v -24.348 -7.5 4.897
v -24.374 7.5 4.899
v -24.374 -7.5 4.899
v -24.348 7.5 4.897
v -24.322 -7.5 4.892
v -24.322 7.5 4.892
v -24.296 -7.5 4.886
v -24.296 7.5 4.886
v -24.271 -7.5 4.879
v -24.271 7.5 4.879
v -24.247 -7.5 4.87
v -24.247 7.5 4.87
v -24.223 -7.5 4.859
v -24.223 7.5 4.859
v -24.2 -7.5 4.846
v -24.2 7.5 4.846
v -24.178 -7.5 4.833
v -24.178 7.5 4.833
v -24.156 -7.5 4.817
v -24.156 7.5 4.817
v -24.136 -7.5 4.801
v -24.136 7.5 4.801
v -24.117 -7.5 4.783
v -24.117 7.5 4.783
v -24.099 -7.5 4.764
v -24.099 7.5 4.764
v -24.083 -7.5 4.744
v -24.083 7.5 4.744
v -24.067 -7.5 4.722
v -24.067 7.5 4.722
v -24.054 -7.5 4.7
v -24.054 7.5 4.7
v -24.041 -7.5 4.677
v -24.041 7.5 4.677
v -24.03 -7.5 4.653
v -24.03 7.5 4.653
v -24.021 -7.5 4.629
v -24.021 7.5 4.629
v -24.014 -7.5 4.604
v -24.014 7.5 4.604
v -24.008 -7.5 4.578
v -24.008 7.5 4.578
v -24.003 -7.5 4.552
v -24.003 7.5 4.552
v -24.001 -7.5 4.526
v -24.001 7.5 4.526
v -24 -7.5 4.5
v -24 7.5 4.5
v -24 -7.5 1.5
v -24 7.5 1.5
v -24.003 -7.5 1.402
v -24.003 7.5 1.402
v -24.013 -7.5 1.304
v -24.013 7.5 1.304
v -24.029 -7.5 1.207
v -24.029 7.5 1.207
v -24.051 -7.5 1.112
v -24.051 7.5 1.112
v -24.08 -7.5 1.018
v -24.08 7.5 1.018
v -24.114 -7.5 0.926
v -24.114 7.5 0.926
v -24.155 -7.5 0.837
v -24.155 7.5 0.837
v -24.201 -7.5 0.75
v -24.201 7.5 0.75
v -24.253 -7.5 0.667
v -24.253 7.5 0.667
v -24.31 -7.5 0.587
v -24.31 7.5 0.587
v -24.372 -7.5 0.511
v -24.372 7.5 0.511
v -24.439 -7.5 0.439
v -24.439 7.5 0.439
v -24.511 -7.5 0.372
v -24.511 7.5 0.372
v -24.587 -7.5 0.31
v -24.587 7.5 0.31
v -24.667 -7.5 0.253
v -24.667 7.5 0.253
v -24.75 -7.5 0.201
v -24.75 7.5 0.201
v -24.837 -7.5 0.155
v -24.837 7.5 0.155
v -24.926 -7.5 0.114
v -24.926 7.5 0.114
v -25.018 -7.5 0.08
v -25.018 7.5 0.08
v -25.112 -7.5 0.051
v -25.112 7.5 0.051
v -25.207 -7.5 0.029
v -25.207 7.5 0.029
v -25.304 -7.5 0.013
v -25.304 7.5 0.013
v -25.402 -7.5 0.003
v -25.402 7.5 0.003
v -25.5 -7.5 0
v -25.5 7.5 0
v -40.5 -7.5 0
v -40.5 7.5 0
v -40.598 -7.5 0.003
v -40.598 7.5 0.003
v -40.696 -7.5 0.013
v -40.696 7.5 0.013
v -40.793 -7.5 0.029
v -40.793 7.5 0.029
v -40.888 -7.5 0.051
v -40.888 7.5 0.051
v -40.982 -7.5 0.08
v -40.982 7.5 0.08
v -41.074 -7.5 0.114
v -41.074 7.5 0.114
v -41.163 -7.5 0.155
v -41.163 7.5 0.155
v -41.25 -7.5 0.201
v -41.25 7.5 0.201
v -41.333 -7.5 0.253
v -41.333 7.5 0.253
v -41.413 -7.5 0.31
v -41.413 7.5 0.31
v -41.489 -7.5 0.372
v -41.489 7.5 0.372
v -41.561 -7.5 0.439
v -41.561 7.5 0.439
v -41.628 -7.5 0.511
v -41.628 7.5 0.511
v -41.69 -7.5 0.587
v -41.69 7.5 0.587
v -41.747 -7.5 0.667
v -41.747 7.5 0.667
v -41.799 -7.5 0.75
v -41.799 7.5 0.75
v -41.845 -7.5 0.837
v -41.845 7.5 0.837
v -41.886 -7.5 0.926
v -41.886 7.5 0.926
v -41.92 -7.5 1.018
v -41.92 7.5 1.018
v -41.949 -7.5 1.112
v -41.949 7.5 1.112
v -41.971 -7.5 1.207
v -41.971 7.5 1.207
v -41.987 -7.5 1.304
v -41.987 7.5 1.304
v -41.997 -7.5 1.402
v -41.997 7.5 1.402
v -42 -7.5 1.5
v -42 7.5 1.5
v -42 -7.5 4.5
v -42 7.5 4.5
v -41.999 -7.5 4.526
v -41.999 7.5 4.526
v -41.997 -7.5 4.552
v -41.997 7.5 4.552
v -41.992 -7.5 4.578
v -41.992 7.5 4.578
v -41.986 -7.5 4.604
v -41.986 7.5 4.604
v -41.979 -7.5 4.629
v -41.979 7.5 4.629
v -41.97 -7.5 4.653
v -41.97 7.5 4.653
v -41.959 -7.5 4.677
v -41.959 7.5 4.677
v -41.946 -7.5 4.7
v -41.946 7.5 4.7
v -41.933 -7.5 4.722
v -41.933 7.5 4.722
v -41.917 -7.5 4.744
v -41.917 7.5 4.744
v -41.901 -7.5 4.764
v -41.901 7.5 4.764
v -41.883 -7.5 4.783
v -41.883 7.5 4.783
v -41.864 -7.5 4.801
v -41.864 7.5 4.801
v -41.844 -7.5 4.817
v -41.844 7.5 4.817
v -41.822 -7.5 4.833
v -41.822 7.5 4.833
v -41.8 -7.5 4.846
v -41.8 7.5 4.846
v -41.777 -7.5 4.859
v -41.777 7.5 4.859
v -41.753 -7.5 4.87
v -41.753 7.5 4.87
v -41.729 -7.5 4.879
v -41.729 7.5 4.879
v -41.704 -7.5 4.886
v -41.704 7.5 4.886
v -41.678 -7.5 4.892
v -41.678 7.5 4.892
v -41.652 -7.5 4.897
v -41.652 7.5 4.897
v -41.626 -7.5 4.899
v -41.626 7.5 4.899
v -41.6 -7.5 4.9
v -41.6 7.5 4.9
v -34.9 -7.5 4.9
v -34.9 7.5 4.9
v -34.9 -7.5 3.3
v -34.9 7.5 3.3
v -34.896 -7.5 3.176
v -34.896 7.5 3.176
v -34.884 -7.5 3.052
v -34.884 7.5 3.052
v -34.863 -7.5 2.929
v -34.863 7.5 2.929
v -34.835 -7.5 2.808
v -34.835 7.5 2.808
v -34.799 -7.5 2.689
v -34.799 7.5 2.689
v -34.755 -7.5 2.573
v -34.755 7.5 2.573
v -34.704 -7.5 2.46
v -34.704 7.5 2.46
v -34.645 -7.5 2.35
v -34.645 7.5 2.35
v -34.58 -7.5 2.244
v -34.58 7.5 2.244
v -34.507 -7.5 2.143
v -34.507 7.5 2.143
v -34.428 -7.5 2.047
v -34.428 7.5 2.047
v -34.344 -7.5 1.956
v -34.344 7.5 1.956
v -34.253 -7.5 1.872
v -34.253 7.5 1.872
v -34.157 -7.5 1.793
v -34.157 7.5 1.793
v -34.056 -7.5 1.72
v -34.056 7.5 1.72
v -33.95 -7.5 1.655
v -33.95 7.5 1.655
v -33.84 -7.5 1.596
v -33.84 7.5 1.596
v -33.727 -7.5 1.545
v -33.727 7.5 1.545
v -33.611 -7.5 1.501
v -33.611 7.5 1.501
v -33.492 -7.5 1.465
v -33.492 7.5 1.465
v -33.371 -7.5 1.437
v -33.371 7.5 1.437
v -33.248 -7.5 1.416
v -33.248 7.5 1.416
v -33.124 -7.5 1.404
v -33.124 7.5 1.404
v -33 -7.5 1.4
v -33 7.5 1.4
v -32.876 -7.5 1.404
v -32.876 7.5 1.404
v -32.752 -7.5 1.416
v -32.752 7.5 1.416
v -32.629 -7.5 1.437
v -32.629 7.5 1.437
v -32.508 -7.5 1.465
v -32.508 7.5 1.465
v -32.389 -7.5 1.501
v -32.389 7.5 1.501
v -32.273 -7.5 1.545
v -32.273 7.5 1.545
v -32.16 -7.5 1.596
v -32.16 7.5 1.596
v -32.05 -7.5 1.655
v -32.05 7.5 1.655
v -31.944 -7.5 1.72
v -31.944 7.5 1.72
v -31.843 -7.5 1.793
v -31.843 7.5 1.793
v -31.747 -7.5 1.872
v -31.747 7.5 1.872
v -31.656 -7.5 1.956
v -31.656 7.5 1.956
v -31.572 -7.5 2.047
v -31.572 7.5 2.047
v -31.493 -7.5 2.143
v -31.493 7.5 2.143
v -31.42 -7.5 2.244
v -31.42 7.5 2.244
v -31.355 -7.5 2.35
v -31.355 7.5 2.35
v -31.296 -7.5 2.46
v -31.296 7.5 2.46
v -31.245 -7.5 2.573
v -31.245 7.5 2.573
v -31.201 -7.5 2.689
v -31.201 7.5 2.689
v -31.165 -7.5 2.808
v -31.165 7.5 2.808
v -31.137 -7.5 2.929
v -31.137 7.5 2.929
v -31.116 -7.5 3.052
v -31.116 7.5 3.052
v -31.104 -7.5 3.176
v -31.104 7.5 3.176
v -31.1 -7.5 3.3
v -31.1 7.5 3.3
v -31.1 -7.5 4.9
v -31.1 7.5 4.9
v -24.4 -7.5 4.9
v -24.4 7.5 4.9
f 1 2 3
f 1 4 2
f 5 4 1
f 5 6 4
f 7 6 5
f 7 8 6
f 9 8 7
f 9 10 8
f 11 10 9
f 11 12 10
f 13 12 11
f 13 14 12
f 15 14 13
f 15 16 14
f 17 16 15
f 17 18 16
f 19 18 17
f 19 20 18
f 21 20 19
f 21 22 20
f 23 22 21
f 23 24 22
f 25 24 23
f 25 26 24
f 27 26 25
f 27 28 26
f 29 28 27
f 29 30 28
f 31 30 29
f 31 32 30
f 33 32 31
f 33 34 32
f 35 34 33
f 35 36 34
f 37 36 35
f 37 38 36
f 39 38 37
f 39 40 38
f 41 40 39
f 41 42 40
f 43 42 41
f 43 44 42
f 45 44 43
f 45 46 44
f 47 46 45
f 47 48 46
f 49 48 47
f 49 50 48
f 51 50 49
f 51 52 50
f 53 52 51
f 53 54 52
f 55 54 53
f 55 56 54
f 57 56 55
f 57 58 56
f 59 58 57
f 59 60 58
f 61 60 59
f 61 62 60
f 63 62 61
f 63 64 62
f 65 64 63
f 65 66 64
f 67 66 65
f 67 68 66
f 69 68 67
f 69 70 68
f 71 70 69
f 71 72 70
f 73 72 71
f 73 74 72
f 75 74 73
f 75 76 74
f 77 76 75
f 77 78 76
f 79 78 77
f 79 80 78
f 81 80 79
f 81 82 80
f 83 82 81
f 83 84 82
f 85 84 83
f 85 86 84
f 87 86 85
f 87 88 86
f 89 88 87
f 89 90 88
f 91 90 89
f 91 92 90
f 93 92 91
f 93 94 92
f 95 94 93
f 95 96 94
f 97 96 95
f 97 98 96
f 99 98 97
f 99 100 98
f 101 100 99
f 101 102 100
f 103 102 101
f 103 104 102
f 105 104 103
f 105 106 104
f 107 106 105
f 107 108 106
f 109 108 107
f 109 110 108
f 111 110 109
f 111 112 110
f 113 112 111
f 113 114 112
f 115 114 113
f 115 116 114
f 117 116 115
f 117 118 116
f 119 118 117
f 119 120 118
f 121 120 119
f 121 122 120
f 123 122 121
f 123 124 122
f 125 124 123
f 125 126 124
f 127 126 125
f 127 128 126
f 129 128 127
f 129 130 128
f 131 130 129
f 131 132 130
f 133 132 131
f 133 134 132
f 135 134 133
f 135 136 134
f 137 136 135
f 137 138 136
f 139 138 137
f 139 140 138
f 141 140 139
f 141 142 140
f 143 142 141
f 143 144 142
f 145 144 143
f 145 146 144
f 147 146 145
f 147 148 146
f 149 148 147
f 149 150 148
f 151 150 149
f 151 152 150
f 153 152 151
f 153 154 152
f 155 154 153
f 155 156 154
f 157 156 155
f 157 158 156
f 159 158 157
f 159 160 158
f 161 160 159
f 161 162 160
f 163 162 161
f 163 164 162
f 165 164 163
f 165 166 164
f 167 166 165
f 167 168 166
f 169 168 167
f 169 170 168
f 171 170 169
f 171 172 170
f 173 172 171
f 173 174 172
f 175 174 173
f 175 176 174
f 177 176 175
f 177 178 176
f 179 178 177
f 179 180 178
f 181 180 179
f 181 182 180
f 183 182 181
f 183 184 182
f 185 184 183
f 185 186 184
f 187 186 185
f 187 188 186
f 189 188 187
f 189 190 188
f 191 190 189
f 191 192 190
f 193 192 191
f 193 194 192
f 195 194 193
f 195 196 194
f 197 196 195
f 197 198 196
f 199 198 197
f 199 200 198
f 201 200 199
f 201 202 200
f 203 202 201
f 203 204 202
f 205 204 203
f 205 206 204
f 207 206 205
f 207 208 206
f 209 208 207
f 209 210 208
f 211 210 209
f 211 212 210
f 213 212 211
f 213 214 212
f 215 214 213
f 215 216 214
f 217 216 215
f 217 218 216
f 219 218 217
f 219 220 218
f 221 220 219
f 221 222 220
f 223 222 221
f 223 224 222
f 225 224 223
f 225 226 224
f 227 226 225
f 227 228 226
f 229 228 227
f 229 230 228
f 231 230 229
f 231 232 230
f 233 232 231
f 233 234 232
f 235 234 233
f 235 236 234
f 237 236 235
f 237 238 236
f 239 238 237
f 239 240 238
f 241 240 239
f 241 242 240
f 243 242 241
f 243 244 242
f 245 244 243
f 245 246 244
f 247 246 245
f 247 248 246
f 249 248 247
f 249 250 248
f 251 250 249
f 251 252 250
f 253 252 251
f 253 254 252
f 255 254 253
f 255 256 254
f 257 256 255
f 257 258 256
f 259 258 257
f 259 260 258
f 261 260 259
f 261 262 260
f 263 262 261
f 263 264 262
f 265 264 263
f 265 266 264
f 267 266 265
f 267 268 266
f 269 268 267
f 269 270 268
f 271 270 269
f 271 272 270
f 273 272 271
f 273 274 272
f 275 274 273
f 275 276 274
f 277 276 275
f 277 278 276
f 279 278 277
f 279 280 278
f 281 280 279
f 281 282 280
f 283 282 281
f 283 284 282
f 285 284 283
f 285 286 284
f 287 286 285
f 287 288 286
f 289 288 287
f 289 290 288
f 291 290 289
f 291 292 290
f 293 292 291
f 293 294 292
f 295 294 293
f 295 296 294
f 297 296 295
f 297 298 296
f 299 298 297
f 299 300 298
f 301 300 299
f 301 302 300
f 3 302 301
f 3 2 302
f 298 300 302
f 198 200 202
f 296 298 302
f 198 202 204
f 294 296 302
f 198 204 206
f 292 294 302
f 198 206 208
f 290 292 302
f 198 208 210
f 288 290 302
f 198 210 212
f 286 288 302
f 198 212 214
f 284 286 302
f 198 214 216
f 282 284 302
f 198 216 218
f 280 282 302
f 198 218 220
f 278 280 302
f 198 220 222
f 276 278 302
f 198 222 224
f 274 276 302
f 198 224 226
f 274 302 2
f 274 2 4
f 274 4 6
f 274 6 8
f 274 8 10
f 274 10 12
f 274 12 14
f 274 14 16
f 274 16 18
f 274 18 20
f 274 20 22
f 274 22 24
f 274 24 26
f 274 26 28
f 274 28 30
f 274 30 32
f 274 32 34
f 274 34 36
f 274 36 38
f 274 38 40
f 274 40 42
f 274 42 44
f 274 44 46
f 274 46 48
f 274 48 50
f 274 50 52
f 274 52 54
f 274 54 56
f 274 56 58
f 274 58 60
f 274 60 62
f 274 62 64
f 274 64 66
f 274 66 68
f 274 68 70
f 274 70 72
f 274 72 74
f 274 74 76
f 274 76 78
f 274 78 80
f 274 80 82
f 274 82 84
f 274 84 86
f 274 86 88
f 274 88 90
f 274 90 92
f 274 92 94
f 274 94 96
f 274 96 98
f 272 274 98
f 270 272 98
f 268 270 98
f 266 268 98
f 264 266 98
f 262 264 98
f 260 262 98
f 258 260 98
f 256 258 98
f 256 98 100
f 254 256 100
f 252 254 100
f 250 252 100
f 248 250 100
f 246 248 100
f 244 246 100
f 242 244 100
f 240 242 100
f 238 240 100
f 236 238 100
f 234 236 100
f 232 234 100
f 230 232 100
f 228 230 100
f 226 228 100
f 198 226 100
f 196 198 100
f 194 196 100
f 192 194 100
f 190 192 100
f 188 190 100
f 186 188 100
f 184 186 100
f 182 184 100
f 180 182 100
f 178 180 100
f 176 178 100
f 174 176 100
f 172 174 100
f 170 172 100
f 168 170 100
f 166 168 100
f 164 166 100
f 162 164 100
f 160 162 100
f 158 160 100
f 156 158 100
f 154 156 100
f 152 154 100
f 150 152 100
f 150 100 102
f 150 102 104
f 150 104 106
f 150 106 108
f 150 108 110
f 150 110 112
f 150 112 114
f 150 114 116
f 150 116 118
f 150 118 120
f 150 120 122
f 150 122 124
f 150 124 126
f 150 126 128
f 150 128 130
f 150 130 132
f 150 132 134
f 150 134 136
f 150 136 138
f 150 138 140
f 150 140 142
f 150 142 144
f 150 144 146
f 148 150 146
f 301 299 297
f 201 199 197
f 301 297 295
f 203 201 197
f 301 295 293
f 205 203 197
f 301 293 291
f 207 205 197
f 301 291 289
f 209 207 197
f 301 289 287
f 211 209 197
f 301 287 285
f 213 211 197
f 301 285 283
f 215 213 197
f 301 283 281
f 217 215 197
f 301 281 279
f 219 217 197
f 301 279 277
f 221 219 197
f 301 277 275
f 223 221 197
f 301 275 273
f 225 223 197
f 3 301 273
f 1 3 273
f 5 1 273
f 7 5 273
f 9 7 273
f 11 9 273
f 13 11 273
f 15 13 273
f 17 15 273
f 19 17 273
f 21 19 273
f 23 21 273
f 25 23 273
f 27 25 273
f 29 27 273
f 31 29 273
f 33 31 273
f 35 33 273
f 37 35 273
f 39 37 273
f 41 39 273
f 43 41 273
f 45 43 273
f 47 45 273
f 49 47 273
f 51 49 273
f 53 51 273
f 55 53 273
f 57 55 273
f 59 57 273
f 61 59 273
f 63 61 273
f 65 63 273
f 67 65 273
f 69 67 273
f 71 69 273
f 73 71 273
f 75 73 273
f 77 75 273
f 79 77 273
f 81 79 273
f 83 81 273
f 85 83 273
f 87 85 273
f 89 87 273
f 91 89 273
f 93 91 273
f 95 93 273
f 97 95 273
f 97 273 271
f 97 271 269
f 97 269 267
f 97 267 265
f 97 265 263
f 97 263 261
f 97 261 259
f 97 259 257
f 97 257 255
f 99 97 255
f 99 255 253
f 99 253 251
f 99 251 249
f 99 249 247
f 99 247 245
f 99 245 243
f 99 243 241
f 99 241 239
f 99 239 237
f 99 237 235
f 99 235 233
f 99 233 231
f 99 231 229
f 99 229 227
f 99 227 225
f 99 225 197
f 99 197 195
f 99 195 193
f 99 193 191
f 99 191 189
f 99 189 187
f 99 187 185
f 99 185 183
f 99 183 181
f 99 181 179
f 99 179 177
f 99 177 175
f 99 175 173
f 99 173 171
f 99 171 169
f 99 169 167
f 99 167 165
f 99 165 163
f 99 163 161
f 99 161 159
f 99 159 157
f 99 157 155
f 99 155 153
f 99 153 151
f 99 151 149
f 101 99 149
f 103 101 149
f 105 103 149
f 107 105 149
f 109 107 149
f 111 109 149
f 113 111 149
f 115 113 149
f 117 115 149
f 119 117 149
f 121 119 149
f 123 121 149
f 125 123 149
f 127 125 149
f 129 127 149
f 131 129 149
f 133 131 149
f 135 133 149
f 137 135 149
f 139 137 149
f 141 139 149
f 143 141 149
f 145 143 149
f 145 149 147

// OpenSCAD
// simplisafe-wire-guide.scad
//
// Taped-on clips that hold a 3.5 mm round wire up the side of a shelf whose
// edge is 21 mm wide (Ziad, 2026-10-11).
//
// THE WIRE RUNS BEHIND THE CLIP. Each clip is a plain plate with a groove
// down its back; lay the wire on the shelf, set a clip over it, and the
// tape on the two rails either side of the groove holds both down. The
// shelf itself is the groove's fourth wall. (Ziad, 2026-10-11: the first
// draft was a snap channel on the front, wire showing; he wanted it behind.)
// doorbell-wire-channel.scad is the same idea as a continuous raceway.
//
// THE GROOVE IS AS DEEP AS THE WIRE, so with thin tape the wire is held
// snug against the shelf. Foam tape stands the rails off the shelf by its
// own thickness and leaves the wire that much slack; take groove_depth down
// by the tape's thickness if that matters.
//
// The plate is clip_w wide, centred in shelf_w with a margin either side so
// it does not hang over the edge if placed a little off.
//
// Prints face down: the groove opens upward and nothing overhangs, and the
// rails' top surface is the smooth one, for the tape.
//
// Drawn as mounted: back against the shelf at z = 0, wire along Y, front
// facing +Z.

/* [Output] */
// set  — count clips face down, the way they print
// clip — one clip, as mounted
/* [Assembly display] */
// default preserves the original part, coupon and print selectors.
view = "default"; // [default, together, exploded]

show = "set";  // [set, clip]

// Clips on the plate.
count = 1;

/* [Shelf] */
// Width of the shelf face the clip sits on, mm.
shelf_w = 21;

/* [Wire] */
// Wire diameter, mm.
wire_d = 3.5;
// Groove width over the wire, mm.
groove_w = 3.8;
// Groove depth from the back face, mm. Wire depth for a snug hold on thin tape.
groove_depth = 3.5;

/* [Clip] */
// Width across the shelf face, mm.
clip_w = 18;
// Length along the wire, mm.
clip_len = 15;
// Plate over the groove, mm (four loops' worth of layers is plenty).
cover_t = 1.4;
// Round on the front edges, mm.
front_r = 1.5;
// Round on the back edges, mm.
back_r = 0.4;

/* [Plate] */
// Gap between clips on the plate, mm.
plate_gap = 4;
// Clips per row on the plate.
plate_cols = 4;

/* [Colors] */
clip_color = "SlateGray";

/* [Hidden] */
$fn = 96;
eps = 0.01;

clip_t = groove_depth + cover_t;

assert(clip_w <= shelf_w, "clip_w is wider than the shelf");
assert(groove_w > wire_d, "groove_w must clear the wire");
assert(front_r + back_r <= clip_t, "edge rounds overlap");

// Section across the wire: x across the shelf, y out from the shelf.
module clip_profile() {
  difference() {
    hull() {
      for (s = [-1, 1]) {
        translate([s * (clip_w / 2 - back_r), back_r]) circle(r = back_r);
        translate([s * (clip_w / 2 - front_r), clip_t - front_r]) circle(r = front_r);
      }
    }
    // Groove, round at its roof so the wire seats in it.
    hull() {
      translate([-groove_w / 2, -eps]) square([groove_w, eps]);
      translate([0, groove_depth - groove_w / 2]) circle(d = groove_w);
    }
  }
}

// As mounted: back on z = 0, wire along Y.
module simplisafe_wire_guide() {
  color(clip_color)
    rotate([90, 0, 0])
      translate([0, 0, -clip_len / 2])
        linear_extrude(height = clip_len, convexity = 4) clip_profile();
}

// Face down on the bed, groove up.
module clip_face_down() {
  translate([0, 0, clip_t]) rotate([180, 0, 0]) simplisafe_wire_guide();
}

module print_set() {
  pitch_x = clip_w + plate_gap;
  pitch_y = clip_len + plate_gap;
  rows = ceil(count / plate_cols);
  for (i = [0 : count - 1])
    translate([
      (i % plate_cols - (plate_cols - 1) / 2) * pitch_x,
      (floor(i / plate_cols) - (rows - 1) / 2) * pitch_y,
      0,
    ])
      clip_face_down();
}



// Assembly display changes placement only; the original output remains the default.
// Single printed piece: both display modes show the same intact part.
module feral_default_output_4713f7da4156() {
if (show == "clip") simplisafe_wire_guide();
else print_set();
}

module feral_assembly_view_4713f7da4156(explode=false) {
feral_default_output_4713f7da4156();
}

assert(view == "default" || view == "together" || view == "exploded", "Unknown assembly display");
if(view == "default") feral_default_output_4713f7da4156();
else feral_assembly_view_4713f7da4156(view == "exploded");
